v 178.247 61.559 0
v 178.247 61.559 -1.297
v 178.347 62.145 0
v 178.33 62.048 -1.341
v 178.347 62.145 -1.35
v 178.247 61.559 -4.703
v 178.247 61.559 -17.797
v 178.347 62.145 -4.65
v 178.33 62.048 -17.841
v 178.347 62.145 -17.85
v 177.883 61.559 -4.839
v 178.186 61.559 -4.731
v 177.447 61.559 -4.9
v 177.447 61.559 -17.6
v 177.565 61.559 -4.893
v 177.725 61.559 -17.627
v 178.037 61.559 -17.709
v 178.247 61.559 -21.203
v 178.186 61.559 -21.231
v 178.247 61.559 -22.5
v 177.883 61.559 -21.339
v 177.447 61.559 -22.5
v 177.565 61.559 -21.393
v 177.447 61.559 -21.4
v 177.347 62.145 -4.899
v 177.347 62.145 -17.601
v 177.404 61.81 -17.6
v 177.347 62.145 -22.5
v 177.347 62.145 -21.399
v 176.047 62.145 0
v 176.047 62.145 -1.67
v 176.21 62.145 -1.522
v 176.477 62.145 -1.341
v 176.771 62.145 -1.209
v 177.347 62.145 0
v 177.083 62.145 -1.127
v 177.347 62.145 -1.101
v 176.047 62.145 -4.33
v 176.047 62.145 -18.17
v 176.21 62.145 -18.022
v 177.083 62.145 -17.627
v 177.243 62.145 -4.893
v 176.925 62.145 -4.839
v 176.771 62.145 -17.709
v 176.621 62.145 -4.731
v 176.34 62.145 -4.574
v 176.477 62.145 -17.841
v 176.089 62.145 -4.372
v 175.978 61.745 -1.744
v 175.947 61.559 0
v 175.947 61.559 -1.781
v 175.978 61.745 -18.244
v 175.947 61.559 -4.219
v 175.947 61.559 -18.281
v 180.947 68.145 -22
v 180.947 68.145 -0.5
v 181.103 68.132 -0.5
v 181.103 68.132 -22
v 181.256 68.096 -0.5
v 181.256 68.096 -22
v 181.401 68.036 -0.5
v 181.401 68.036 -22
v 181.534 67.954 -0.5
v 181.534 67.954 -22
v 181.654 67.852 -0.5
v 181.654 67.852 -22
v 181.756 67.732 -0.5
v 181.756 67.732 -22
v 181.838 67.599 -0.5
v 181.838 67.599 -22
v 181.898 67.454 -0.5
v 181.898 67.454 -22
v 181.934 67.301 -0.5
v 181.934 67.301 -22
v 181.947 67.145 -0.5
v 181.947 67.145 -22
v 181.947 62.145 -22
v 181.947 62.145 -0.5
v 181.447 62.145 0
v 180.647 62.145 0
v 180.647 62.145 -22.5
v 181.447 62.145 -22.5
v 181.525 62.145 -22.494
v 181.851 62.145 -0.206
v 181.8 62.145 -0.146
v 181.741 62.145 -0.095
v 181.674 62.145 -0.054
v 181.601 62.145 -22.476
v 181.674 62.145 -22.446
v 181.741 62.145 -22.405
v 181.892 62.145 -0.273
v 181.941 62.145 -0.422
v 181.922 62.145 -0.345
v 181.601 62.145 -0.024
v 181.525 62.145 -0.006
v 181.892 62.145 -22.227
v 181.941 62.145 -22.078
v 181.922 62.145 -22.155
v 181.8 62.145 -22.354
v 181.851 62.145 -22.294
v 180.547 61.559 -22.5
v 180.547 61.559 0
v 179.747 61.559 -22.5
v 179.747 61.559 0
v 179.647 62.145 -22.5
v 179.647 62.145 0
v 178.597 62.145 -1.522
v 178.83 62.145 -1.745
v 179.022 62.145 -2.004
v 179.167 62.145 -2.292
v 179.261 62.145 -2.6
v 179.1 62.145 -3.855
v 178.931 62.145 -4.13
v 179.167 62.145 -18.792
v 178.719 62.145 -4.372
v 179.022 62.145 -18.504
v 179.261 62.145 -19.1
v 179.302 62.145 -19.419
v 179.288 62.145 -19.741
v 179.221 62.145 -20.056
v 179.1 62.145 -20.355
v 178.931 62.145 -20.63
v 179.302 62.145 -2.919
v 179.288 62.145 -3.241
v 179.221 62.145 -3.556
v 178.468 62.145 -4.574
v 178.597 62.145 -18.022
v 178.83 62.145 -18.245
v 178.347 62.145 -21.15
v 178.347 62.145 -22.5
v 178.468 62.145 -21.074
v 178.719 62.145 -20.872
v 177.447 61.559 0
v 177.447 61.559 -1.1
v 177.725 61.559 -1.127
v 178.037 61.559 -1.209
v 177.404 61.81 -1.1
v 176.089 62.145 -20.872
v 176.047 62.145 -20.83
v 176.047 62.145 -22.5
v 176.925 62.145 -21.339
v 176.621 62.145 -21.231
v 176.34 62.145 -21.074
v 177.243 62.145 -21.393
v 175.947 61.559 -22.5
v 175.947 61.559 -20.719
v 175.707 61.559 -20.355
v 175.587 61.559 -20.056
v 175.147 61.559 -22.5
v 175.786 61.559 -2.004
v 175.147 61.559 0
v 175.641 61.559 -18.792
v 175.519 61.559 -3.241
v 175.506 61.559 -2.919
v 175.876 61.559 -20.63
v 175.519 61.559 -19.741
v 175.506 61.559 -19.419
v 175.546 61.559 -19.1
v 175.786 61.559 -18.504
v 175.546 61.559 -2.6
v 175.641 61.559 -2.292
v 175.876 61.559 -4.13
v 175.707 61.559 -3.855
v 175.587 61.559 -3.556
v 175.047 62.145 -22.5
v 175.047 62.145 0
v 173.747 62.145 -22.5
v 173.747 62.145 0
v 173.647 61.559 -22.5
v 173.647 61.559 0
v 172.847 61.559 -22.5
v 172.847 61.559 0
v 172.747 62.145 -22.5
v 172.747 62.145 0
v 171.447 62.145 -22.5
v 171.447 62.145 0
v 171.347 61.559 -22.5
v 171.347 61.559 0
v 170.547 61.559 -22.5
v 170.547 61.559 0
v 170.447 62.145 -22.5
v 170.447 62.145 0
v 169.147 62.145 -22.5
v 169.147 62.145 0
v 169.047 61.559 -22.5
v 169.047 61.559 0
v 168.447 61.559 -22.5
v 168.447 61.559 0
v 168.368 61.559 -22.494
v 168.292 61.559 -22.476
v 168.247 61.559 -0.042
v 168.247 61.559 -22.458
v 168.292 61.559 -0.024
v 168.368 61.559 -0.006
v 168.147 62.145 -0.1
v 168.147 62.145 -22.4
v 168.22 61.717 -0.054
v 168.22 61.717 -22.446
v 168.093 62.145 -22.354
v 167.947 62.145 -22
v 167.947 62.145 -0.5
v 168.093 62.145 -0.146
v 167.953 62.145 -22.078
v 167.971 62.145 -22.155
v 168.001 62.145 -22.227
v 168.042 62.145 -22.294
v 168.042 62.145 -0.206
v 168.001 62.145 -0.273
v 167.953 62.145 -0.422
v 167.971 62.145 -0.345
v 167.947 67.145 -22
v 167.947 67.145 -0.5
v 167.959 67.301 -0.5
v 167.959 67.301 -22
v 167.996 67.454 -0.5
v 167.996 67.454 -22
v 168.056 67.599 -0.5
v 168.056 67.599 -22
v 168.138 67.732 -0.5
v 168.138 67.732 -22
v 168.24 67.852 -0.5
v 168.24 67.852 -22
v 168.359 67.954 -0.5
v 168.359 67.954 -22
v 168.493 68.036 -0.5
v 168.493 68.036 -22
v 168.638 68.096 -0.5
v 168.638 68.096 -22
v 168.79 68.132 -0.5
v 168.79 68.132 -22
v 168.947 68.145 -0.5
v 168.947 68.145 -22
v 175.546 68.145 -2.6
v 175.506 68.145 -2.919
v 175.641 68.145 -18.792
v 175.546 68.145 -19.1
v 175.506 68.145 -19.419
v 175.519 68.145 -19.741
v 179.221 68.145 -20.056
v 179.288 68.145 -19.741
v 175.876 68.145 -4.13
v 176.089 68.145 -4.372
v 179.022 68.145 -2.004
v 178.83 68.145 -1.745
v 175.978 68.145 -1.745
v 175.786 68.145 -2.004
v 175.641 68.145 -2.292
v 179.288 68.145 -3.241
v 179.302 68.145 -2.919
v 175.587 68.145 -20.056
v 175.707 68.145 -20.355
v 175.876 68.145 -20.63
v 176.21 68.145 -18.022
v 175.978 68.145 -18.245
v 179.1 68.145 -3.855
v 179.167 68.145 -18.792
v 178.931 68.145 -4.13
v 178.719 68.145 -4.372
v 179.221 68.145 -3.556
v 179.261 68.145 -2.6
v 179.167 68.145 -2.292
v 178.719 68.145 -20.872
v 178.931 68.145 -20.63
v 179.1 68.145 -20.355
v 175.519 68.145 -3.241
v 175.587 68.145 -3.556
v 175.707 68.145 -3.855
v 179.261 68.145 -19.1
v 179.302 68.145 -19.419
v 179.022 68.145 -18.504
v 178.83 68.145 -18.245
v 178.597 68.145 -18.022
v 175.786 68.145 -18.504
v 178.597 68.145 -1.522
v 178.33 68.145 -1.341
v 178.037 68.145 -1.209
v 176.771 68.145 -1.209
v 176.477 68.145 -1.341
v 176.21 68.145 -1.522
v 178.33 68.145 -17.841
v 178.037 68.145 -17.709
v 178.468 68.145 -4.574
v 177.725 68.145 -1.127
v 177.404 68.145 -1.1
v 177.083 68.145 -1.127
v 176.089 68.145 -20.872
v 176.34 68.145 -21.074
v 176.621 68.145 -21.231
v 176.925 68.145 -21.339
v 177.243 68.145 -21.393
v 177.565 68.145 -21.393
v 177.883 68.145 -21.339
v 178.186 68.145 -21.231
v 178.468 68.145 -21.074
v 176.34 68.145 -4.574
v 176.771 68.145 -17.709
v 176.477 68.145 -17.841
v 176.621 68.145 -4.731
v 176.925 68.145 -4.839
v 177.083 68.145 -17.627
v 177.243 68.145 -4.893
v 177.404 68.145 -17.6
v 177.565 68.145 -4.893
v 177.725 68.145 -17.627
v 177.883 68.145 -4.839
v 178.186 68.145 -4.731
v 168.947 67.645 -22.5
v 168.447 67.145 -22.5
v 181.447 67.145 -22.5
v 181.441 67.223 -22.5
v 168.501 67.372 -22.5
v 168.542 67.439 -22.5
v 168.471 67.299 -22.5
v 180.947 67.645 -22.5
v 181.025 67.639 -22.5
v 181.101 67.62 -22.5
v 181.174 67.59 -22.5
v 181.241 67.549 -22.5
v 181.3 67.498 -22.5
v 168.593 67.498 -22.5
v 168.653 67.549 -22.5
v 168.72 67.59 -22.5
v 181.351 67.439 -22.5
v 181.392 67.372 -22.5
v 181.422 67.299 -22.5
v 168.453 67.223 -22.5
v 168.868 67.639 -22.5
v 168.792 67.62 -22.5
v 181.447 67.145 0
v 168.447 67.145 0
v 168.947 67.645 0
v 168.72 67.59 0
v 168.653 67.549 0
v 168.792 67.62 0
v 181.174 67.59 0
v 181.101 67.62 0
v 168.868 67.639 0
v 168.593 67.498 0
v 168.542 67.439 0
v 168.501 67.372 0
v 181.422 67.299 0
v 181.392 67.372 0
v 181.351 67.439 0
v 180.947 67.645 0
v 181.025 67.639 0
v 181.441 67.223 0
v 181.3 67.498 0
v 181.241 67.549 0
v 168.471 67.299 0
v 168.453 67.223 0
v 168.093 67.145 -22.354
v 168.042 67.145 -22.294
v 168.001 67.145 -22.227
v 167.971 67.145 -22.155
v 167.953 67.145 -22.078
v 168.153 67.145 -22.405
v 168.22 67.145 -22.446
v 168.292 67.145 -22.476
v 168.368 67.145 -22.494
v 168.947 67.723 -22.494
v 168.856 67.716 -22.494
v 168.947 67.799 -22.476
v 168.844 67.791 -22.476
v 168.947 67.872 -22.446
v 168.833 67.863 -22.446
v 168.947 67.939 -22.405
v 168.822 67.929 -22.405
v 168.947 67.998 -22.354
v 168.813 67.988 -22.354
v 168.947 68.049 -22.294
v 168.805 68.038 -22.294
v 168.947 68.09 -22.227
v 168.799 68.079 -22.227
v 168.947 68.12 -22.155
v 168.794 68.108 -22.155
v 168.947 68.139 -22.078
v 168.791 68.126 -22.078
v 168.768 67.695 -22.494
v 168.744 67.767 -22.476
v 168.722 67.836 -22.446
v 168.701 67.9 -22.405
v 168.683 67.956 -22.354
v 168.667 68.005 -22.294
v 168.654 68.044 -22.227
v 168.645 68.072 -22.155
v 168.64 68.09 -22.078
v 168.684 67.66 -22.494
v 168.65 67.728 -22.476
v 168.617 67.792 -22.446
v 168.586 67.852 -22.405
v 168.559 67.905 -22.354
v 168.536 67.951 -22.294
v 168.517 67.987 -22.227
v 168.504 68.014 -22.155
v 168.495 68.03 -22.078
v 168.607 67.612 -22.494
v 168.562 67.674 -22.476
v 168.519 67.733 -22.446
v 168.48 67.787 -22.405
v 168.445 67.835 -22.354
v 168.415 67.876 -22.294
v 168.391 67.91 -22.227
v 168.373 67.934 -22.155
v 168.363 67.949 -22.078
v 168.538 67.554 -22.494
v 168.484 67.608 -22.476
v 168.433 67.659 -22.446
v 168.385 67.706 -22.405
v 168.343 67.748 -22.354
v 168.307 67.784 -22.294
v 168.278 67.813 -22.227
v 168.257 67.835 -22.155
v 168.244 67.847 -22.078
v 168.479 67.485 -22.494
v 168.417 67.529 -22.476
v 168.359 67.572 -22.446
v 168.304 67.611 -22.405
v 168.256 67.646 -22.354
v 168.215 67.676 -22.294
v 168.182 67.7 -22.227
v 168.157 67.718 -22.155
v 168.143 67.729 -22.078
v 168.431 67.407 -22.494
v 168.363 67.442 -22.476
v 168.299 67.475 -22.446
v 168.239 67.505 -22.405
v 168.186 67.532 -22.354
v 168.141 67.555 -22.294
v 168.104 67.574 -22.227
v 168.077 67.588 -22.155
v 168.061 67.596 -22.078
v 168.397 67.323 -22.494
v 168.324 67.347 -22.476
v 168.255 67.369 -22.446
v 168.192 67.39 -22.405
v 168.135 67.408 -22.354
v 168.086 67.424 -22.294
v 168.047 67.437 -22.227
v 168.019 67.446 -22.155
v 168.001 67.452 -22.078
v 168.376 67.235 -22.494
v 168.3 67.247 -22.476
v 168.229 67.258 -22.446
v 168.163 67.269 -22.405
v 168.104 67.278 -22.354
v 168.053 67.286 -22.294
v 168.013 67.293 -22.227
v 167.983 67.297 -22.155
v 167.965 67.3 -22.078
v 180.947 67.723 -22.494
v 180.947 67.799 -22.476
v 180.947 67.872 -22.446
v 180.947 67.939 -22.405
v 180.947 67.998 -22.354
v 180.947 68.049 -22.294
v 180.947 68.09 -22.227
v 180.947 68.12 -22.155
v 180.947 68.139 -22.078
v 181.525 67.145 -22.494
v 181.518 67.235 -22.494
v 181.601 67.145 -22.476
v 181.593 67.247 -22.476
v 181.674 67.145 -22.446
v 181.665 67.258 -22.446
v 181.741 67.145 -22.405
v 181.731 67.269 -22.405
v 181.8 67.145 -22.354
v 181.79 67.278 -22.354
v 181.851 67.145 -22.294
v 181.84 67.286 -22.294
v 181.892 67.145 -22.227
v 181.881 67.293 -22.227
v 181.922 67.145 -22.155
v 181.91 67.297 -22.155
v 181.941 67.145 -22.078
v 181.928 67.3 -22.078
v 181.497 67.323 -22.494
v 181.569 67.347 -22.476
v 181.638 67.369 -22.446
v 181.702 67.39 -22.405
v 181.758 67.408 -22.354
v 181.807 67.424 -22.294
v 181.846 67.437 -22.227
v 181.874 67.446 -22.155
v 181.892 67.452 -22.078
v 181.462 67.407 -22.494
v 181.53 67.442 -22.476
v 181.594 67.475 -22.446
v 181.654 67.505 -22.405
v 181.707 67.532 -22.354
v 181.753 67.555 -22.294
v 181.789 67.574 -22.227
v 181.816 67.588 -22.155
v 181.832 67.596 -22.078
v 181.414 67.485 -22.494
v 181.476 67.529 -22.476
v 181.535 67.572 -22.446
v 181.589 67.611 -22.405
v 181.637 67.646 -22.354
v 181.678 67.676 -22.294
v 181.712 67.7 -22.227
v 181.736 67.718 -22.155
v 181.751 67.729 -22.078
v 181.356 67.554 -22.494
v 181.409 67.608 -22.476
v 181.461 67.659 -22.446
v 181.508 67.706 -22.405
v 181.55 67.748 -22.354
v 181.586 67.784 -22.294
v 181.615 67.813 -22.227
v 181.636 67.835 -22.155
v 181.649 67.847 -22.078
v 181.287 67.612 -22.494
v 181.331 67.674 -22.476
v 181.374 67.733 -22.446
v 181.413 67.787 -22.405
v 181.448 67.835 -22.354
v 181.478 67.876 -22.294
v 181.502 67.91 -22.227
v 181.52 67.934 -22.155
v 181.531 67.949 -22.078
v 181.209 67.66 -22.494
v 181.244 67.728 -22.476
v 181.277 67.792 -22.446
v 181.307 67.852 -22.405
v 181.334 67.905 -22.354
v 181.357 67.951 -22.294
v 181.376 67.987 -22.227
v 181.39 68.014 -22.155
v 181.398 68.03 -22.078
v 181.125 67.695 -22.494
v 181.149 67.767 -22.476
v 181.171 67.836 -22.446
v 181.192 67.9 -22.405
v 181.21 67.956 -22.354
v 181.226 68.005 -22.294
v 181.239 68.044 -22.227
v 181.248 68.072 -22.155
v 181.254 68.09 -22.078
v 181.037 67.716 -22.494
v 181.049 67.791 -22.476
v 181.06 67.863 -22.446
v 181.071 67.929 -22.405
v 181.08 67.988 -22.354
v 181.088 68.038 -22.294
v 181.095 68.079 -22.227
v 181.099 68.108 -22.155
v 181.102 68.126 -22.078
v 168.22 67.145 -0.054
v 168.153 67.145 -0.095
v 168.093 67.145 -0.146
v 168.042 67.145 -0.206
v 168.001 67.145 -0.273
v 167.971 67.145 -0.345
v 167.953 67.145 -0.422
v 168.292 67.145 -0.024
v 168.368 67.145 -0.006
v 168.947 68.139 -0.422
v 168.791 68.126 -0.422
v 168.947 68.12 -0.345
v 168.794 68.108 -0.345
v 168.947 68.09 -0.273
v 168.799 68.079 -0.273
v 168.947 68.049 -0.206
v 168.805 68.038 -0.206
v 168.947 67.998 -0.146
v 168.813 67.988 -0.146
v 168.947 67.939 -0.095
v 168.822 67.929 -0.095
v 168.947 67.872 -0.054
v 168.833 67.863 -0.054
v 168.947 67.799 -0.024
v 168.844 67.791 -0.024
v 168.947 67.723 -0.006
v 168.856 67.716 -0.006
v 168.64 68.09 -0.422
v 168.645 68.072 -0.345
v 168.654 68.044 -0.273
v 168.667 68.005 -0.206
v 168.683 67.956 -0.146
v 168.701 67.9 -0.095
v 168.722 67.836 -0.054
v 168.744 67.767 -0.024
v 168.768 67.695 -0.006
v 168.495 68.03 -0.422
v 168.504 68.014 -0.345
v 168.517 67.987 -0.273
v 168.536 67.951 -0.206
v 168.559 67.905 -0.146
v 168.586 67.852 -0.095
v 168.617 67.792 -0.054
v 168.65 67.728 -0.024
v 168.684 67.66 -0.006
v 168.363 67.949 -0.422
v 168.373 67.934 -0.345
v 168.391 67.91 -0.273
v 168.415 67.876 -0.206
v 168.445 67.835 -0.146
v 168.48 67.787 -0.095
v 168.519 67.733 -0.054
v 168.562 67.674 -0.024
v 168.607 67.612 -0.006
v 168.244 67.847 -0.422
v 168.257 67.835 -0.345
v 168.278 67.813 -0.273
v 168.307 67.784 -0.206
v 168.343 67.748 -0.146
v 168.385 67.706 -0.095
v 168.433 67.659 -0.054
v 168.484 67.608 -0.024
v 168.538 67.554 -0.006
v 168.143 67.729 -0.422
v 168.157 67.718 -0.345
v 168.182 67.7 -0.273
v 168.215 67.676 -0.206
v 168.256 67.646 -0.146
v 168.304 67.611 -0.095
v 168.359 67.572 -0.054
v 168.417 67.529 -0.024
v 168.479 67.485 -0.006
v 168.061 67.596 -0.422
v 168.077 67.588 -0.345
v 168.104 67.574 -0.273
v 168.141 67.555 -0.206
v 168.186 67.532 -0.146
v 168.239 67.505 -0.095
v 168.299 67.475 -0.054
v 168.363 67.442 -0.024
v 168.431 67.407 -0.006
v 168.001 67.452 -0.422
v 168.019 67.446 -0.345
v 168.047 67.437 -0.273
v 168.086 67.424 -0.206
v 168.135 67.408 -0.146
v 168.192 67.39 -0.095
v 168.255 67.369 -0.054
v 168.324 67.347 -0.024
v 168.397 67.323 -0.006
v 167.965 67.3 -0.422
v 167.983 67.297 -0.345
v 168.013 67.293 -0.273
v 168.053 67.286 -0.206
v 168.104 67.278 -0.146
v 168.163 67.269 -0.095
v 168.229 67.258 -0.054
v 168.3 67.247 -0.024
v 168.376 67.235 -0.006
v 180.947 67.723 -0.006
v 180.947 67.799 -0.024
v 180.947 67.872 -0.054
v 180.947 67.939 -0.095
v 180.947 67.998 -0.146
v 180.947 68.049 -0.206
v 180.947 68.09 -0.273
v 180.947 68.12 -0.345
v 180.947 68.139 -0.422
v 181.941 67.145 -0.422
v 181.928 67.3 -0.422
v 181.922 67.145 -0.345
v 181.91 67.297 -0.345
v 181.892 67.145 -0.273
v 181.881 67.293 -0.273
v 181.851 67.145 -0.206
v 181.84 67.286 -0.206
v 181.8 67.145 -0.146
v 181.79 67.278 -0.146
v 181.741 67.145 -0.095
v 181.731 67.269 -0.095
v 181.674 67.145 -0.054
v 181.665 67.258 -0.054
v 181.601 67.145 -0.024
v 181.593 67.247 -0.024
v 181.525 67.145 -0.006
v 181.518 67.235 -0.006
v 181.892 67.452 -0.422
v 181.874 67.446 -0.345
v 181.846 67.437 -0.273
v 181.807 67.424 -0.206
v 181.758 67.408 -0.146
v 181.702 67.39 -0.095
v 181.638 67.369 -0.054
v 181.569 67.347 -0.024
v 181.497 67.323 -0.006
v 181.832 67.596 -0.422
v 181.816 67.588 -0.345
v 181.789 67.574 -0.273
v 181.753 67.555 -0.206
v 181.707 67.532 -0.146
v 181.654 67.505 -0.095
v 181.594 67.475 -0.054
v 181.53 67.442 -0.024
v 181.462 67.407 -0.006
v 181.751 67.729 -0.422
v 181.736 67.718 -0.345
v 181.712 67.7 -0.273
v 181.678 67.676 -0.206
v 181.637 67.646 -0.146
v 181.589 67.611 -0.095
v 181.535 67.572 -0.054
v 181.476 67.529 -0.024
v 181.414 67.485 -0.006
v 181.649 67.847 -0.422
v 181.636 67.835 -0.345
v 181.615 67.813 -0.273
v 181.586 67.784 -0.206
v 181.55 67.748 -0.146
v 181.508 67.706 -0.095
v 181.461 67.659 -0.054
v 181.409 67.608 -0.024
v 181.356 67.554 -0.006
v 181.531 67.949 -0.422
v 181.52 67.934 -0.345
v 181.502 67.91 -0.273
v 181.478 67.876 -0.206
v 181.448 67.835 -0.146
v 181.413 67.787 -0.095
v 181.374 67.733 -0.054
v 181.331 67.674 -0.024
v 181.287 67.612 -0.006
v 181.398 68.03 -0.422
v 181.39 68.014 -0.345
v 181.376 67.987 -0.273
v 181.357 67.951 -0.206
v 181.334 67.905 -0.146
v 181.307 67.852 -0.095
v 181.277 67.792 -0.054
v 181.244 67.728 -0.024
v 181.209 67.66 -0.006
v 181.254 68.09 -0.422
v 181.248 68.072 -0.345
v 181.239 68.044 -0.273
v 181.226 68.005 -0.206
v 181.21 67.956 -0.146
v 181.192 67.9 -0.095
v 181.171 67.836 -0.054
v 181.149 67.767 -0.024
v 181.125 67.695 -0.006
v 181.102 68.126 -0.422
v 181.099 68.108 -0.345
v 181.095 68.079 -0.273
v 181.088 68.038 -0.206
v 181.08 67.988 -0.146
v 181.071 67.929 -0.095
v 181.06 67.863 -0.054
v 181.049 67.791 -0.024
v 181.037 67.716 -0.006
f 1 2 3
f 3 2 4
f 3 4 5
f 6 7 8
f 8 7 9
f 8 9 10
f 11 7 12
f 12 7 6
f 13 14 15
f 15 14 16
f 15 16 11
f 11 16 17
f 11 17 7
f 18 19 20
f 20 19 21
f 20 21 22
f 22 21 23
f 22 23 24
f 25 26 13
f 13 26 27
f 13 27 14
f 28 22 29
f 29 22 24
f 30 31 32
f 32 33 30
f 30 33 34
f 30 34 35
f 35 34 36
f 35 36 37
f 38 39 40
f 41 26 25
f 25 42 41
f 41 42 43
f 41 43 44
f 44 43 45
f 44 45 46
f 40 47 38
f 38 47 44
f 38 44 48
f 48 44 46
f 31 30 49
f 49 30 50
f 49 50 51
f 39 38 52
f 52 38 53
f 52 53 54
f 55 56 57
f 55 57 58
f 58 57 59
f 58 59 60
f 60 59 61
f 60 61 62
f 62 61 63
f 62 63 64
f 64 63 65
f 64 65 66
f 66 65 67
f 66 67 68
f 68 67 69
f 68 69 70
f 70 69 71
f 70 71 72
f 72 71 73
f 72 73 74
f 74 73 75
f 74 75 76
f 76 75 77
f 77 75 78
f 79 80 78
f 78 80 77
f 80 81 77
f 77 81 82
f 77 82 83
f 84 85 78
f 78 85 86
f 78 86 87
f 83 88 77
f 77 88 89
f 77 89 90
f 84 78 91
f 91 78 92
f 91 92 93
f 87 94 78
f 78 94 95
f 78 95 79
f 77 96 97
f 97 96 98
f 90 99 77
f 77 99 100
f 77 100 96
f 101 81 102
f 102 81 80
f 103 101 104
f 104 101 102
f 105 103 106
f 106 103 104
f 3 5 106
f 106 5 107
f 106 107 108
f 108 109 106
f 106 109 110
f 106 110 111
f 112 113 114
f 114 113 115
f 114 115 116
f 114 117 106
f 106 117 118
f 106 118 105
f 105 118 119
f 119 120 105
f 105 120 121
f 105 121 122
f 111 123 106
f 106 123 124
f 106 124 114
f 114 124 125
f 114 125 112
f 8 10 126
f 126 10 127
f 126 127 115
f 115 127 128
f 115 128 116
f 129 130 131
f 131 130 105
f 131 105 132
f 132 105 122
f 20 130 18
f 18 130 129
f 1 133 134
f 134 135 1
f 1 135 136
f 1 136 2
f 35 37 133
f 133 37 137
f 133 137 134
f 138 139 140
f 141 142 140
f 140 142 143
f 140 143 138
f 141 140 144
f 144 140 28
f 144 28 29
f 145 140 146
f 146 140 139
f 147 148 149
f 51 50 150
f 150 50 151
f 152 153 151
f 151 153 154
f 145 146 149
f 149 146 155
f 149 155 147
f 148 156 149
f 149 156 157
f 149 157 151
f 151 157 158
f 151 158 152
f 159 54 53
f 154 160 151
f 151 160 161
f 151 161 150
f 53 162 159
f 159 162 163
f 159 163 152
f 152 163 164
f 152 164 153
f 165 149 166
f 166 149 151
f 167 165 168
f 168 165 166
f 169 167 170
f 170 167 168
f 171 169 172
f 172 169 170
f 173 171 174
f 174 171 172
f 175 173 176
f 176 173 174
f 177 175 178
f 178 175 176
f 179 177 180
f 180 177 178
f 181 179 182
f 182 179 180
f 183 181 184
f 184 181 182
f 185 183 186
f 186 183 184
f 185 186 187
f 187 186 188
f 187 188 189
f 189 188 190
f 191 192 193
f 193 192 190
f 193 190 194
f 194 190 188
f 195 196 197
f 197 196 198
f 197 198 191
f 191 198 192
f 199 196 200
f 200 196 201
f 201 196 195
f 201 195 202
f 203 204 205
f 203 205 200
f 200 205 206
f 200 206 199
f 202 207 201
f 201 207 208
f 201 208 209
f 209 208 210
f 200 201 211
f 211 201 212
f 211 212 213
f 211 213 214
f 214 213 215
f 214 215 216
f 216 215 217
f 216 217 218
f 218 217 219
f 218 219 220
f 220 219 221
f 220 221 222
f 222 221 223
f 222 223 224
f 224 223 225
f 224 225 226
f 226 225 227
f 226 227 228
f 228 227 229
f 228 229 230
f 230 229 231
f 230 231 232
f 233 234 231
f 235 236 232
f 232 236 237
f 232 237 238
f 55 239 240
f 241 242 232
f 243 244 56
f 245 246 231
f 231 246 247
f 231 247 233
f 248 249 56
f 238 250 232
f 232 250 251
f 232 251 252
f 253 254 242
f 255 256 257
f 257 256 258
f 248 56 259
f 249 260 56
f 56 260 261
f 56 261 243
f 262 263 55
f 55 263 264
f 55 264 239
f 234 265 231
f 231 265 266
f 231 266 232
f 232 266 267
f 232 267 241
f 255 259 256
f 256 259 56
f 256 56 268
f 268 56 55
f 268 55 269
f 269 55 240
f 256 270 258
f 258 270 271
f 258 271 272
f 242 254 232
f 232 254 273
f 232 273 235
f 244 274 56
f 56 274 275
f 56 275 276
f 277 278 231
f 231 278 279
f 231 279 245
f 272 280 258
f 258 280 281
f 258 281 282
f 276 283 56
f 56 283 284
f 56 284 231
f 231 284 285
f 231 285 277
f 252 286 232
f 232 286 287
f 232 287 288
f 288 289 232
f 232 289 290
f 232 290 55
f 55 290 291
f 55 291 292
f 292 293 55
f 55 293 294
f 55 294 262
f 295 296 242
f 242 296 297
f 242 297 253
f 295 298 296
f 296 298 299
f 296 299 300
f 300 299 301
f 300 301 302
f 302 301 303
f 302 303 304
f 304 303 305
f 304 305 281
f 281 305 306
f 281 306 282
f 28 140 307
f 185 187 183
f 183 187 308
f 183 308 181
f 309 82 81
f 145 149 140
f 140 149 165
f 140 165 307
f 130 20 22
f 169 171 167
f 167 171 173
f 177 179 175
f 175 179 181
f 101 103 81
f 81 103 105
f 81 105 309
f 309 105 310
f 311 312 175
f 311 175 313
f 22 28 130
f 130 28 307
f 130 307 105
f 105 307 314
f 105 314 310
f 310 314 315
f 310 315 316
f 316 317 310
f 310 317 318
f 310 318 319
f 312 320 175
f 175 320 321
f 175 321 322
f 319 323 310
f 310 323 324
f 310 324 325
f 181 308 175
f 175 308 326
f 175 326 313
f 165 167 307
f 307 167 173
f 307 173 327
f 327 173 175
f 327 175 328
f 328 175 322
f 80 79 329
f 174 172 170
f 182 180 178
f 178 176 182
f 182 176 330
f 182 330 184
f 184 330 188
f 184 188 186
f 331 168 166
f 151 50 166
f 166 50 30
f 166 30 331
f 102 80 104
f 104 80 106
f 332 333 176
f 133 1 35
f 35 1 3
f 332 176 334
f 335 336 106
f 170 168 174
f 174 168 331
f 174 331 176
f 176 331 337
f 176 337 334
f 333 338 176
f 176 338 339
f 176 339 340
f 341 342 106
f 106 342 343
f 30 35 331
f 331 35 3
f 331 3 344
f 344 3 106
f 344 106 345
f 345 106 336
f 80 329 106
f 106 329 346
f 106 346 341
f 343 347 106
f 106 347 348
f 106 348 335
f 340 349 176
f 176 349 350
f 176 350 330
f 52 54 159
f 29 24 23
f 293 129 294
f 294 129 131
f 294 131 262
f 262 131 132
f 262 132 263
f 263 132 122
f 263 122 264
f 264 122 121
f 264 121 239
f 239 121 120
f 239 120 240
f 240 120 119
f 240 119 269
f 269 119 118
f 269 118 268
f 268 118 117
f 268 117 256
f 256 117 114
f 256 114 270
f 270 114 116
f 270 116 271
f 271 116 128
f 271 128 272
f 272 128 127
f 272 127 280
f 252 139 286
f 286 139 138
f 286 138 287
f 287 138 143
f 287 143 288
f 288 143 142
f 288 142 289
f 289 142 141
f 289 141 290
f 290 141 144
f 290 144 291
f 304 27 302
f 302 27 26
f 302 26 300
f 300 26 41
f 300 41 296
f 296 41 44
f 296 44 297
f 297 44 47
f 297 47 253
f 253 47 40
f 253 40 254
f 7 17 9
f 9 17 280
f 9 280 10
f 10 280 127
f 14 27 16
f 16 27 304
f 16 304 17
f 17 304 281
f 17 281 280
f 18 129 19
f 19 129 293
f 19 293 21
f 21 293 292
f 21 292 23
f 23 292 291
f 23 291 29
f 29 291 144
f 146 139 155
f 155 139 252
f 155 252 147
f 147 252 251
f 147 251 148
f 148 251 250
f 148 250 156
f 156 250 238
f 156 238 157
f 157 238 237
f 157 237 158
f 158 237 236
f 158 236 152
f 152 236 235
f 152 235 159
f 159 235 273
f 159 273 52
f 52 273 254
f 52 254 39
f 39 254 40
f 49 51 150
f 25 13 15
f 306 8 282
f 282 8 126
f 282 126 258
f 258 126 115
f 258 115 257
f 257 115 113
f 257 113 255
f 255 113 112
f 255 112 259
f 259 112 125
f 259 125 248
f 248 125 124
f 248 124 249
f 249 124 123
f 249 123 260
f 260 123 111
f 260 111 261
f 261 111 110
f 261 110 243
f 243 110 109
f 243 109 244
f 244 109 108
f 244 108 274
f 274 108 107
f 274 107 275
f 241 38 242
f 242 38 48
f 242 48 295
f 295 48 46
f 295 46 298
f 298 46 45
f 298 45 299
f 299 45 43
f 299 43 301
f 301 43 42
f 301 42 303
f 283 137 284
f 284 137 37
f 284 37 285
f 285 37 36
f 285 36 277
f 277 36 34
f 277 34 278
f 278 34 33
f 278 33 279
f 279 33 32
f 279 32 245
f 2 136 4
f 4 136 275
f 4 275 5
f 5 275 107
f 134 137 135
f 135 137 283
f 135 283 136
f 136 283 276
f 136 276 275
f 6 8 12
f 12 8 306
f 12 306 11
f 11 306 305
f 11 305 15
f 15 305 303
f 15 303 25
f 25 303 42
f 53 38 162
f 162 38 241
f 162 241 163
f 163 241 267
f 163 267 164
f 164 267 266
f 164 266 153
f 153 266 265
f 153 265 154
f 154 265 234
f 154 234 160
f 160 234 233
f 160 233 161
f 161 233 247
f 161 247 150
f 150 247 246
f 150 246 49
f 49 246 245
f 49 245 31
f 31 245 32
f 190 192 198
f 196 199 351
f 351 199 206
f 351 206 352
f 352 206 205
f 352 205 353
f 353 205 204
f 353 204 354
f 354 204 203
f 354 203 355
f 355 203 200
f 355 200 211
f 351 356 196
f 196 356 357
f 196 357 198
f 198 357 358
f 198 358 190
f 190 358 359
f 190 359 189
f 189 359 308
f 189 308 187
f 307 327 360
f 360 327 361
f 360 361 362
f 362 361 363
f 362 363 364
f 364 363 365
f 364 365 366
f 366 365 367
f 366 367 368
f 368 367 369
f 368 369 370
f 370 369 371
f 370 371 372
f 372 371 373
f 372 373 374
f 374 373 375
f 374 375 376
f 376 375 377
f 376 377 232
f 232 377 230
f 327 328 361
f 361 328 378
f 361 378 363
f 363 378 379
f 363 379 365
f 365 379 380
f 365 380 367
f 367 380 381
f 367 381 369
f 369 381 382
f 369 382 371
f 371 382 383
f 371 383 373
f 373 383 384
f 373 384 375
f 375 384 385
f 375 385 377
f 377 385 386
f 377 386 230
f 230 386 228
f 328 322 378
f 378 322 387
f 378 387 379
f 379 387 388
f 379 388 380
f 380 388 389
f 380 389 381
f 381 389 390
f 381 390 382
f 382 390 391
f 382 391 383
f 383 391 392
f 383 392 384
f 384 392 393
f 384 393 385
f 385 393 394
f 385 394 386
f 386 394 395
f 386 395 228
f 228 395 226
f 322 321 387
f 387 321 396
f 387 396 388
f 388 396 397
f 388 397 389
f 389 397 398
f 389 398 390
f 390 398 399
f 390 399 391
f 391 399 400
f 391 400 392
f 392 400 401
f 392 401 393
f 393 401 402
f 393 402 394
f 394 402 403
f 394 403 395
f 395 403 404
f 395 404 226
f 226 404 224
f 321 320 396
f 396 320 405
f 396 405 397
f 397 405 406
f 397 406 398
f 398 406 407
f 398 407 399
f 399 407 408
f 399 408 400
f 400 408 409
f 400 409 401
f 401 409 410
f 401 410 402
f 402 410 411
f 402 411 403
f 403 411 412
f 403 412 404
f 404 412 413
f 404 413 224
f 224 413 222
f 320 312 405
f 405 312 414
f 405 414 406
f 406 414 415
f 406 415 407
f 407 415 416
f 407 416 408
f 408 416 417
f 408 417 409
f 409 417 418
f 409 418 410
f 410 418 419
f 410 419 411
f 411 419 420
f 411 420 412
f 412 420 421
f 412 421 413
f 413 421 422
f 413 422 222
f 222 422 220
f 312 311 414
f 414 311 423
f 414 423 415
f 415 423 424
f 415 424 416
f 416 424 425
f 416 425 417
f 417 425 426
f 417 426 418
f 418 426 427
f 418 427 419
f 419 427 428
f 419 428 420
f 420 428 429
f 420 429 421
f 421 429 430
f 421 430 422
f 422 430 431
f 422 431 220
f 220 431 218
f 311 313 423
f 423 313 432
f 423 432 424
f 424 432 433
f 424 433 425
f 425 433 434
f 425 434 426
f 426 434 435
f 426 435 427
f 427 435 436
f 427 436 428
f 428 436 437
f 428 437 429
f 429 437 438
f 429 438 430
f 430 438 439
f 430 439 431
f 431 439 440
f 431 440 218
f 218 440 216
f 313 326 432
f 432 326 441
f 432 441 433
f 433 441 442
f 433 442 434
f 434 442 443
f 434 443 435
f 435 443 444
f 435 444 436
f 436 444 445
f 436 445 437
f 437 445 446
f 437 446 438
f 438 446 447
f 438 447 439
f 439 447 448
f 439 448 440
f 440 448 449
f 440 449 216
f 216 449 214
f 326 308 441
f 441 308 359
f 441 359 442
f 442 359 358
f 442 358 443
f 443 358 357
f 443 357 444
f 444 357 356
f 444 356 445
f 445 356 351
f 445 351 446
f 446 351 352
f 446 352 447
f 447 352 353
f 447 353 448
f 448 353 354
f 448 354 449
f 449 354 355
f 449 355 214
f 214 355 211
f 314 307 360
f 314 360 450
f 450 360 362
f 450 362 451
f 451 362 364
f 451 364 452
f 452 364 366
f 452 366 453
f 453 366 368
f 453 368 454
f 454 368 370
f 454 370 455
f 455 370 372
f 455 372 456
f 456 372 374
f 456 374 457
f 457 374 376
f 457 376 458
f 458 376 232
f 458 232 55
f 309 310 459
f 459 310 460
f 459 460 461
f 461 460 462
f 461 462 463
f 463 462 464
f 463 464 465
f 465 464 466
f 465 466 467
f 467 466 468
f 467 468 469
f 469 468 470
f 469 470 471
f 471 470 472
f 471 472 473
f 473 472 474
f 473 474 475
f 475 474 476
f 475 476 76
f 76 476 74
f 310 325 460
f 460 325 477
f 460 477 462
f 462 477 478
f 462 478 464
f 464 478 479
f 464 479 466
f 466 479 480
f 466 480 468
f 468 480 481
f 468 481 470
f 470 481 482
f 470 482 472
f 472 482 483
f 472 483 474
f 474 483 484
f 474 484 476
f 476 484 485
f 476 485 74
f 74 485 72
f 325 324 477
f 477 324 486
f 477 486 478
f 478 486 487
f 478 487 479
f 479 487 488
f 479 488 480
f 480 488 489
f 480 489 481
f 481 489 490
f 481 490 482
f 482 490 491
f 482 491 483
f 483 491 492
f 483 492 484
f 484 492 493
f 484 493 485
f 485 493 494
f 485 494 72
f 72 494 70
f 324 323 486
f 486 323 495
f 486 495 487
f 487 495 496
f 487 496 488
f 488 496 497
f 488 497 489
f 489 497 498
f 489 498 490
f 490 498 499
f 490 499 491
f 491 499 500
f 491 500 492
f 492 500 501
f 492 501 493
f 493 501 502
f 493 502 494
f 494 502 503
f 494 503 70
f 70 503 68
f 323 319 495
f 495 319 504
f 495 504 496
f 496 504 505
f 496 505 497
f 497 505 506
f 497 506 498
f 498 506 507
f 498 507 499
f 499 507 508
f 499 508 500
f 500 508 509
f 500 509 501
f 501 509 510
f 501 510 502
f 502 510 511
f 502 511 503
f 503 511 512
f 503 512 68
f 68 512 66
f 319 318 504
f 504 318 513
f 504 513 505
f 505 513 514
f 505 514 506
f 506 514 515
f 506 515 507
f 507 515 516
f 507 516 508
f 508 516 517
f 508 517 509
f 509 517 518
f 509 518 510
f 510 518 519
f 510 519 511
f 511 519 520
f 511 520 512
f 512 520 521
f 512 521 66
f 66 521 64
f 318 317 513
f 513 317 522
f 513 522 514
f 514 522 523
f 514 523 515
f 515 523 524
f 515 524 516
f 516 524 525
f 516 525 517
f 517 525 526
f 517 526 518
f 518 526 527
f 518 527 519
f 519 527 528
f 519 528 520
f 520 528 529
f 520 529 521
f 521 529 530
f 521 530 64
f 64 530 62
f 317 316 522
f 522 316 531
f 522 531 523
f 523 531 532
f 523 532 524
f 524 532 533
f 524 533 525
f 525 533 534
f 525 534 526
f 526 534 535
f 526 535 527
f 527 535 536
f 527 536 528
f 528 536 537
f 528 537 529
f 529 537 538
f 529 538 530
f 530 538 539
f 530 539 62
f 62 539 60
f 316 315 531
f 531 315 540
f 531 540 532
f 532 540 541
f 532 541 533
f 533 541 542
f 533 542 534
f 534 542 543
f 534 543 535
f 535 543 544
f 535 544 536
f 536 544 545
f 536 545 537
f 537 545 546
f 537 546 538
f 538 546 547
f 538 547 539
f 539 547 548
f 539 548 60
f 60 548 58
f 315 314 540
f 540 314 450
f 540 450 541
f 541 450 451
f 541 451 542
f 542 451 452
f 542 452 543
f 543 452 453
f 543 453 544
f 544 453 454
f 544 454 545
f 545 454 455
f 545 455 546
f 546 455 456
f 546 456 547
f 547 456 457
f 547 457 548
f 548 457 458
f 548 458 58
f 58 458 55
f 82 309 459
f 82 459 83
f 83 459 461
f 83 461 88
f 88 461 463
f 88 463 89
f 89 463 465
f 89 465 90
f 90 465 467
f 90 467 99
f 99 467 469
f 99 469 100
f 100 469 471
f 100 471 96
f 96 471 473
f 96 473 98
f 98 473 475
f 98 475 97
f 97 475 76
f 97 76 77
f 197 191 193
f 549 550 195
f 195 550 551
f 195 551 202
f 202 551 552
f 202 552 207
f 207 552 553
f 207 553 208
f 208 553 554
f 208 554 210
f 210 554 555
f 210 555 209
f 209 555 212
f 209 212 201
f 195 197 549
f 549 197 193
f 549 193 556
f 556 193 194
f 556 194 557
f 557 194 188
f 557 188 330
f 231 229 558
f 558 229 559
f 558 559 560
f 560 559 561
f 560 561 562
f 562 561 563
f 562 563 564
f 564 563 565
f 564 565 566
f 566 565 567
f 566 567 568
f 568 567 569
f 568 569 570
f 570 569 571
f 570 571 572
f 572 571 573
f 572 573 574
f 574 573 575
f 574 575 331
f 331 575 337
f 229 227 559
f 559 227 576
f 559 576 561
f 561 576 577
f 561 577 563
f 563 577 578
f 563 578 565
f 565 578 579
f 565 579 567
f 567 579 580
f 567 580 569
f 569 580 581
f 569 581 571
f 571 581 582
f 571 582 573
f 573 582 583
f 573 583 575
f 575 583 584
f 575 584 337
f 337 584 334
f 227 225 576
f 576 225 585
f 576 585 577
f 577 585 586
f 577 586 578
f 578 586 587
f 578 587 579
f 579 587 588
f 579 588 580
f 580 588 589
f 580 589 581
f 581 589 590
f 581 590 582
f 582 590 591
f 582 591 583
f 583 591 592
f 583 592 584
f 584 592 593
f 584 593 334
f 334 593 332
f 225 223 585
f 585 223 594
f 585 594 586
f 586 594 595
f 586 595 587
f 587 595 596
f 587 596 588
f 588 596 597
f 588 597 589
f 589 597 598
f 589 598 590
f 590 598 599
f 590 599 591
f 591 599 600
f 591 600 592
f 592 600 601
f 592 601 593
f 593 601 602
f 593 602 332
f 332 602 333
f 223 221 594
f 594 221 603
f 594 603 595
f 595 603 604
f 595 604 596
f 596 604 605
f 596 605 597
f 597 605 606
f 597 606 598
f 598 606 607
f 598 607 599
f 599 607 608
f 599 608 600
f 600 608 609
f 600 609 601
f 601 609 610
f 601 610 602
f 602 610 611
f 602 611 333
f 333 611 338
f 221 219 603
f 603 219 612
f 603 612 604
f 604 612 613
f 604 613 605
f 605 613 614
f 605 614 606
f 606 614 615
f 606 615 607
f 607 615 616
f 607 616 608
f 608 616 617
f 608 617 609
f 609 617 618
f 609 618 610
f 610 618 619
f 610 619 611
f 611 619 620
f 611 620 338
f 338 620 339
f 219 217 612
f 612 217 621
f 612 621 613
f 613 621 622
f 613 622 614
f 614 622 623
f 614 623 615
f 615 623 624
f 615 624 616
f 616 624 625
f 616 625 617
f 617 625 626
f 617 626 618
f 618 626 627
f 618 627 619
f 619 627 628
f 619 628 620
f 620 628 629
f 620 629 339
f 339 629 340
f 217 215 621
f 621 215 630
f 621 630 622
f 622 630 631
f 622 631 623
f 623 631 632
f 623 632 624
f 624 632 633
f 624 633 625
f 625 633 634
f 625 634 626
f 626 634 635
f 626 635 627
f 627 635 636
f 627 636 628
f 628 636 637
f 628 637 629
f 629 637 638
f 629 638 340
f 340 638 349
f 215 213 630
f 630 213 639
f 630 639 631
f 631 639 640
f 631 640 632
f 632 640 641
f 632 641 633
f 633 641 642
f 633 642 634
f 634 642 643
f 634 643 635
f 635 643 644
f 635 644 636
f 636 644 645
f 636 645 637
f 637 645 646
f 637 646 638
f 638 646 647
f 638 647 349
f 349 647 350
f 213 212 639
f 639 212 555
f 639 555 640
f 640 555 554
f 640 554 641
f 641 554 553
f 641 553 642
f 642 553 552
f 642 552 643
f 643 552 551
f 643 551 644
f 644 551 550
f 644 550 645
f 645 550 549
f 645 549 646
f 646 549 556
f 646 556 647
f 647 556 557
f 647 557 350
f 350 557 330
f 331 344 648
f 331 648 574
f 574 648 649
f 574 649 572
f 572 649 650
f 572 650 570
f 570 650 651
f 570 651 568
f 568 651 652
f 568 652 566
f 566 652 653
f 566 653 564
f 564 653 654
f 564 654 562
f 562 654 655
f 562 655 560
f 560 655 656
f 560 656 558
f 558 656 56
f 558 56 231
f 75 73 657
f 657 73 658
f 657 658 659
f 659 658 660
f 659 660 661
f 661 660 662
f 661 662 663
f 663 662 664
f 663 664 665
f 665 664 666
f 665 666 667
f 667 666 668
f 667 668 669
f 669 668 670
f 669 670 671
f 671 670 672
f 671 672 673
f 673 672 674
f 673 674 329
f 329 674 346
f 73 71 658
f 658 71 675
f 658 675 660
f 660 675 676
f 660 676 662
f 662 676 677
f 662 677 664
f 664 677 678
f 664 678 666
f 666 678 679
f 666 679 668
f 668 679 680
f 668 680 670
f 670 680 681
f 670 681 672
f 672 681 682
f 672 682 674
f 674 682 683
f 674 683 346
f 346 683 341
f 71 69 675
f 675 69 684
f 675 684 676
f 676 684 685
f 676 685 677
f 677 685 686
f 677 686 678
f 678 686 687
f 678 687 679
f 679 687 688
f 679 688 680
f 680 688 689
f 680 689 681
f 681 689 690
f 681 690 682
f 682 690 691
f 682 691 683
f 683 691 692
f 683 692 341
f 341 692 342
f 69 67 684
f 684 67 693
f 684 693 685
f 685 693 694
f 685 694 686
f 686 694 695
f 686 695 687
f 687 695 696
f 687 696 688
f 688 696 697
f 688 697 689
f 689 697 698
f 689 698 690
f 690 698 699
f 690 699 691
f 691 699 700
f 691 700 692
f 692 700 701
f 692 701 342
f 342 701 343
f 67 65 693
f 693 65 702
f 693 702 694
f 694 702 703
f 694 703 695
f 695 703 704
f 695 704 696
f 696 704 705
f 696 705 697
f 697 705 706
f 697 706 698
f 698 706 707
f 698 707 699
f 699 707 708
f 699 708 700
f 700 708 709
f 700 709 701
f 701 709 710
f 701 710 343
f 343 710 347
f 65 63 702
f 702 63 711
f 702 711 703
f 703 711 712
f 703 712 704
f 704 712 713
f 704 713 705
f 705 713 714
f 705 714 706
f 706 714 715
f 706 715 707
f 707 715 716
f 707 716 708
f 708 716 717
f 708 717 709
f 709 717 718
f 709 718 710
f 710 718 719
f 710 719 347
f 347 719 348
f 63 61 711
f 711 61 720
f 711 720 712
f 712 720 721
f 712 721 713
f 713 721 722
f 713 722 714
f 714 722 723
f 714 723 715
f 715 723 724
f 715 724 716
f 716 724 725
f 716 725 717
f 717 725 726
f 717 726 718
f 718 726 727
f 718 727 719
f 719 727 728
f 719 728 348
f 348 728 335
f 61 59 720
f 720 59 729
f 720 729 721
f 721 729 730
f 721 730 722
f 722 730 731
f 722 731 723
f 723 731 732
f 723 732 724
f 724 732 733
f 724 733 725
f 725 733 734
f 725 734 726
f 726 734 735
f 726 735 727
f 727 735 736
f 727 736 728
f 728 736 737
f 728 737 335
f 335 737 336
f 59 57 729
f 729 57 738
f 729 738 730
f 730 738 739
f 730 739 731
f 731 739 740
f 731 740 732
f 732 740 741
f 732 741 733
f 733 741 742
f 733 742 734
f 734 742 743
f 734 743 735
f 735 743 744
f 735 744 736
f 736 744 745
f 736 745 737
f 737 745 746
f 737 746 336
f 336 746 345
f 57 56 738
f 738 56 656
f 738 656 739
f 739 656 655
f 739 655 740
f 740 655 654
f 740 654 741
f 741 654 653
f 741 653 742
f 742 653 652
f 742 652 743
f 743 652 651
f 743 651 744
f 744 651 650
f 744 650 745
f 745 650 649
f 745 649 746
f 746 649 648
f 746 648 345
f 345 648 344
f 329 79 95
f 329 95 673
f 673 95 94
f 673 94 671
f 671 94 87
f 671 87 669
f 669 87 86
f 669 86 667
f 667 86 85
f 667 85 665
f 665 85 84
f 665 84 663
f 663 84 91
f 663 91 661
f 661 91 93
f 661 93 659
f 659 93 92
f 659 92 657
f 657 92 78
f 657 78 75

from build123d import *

# Parameters (mm, degrees)
BOSS_EXTRUDE1_DEPTH = 22.5
SKETCH2_R           = 1.9
CUT_EXTRUDE1_DEPTH  = 184.450850043
FILLET1_R           = 0.5


with BuildPart() as part:
    # Sketch1 → Boss-Extrude1 (new body)
    with BuildSketch(Plane.XY):
        with BuildLine():
            Line((167.946665474, 62.144706948), (167.946665474, 67.144706948))
            ThreePointArc((167.946665474, 67.144706948), (168.239558693, 67.851813729), (168.946665474, 68.144706948))
            Line((168.946665474, 68.144706948), (180.946665474, 68.144706948))
            ThreePointArc((180.946665474, 68.144706948), (181.653772255, 67.851813729), (181.946665474, 67.144706948))
            Line((181.946665474, 67.144706948), (181.946665474, 62.144706948))
            Line((181.946665474, 62.144706948), (180.646665474, 62.144706948))
            Line((180.646665474, 62.144706948), (180.546665474, 61.558713892))
            Line((180.546665474, 61.558713892), (179.746665474, 61.558713892))
            Line((179.746665474, 61.558713892), (179.646665474, 62.144706948))
            Line((179.646665474, 62.144706948), (178.346665474, 62.144706948))
            Line((178.346665474, 62.144706948), (178.246665474, 61.558713892))
            Line((178.246665474, 61.558713892), (177.446665474, 61.558713892))
            Line((177.446665474, 61.558713892), (177.346665474, 62.144706948))
            Line((177.346665474, 62.144706948), (176.046665474, 62.144706948))
            Line((176.046665474, 62.144706948), (175.946665474, 61.558713892))
            Line((175.946665474, 61.558713892), (175.146665474, 61.558713892))
            Line((175.146665474, 61.558713892), (175.046665474, 62.144706948))
            Line((175.046665474, 62.144706948), (173.746665474, 62.144706948))
            Line((173.746665474, 62.144706948), (173.646665474, 61.558713892))
            Line((173.646665474, 61.558713892), (172.846665474, 61.558713892))
            Line((172.846665474, 61.558713892), (172.746665474, 62.144706948))
            Line((172.746665474, 62.144706948), (171.446665474, 62.144706948))
            Line((171.446665474, 62.144706948), (171.346665474, 61.558713892))
            Line((171.346665474, 61.558713892), (170.546665474, 61.558713892))
            Line((170.546665474, 61.558713892), (170.446665474, 62.144706948))
            Line((170.446665474, 62.144706948), (169.146665474, 62.144706948))
            Line((169.146665474, 62.144706948), (169.046665474, 61.558713892))
            Line((169.046665474, 61.558713892), (168.246665474, 61.558713892))
            Line((168.246665474, 61.558713892), (168.146665474, 62.144706948))
            Line((168.146665474, 62.144706948), (167.946665474, 62.144706948))
        make_face()
    extrude(amount=-BOSS_EXTRUDE1_DEPTH)

    # Sketch2 → Cut-Extrude1 (cut, through all)
    with BuildSketch(Plane(origin=(0, 68.144706948, 0), x_dir=(1, 0, 0), z_dir=(0, 1, 0))):
        with Locations(Location((177.403833472, 3, 0), (0, 0, 270))):
            Circle(SKETCH2_R)
        with Locations(Location((177.403833472, 19.5, 0), (0, 0, 270))):
            Circle(SKETCH2_R)
    extrude(amount=-CUT_EXTRUDE1_DEPTH, mode=Mode.SUBTRACT)

    # Fillet1
    fillet1_edges = [part.edges().sort_by_distance(p)[0] for p in [
        (181.946665474, 64.644706948, -22.5),
        (181.653772255, 67.851813729, -22.5),
        (167.946665474, 64.644706948, -22.5),
        (168.239558693, 67.851813729, -22.5),
        (181.946665474, 64.644706948, 0),
        (181.653772255, 67.851813729, 0),
        (167.946665474, 64.644706948, 0),
        (168.239558693, 67.851813729, 0),
        (174.946665474, 68.144706948, -22.5),
        (174.946665474, 68.144706948, 0),
    ]]
    fillet(fillet1_edges, radius=FILLET1_R)


solid = part.part
